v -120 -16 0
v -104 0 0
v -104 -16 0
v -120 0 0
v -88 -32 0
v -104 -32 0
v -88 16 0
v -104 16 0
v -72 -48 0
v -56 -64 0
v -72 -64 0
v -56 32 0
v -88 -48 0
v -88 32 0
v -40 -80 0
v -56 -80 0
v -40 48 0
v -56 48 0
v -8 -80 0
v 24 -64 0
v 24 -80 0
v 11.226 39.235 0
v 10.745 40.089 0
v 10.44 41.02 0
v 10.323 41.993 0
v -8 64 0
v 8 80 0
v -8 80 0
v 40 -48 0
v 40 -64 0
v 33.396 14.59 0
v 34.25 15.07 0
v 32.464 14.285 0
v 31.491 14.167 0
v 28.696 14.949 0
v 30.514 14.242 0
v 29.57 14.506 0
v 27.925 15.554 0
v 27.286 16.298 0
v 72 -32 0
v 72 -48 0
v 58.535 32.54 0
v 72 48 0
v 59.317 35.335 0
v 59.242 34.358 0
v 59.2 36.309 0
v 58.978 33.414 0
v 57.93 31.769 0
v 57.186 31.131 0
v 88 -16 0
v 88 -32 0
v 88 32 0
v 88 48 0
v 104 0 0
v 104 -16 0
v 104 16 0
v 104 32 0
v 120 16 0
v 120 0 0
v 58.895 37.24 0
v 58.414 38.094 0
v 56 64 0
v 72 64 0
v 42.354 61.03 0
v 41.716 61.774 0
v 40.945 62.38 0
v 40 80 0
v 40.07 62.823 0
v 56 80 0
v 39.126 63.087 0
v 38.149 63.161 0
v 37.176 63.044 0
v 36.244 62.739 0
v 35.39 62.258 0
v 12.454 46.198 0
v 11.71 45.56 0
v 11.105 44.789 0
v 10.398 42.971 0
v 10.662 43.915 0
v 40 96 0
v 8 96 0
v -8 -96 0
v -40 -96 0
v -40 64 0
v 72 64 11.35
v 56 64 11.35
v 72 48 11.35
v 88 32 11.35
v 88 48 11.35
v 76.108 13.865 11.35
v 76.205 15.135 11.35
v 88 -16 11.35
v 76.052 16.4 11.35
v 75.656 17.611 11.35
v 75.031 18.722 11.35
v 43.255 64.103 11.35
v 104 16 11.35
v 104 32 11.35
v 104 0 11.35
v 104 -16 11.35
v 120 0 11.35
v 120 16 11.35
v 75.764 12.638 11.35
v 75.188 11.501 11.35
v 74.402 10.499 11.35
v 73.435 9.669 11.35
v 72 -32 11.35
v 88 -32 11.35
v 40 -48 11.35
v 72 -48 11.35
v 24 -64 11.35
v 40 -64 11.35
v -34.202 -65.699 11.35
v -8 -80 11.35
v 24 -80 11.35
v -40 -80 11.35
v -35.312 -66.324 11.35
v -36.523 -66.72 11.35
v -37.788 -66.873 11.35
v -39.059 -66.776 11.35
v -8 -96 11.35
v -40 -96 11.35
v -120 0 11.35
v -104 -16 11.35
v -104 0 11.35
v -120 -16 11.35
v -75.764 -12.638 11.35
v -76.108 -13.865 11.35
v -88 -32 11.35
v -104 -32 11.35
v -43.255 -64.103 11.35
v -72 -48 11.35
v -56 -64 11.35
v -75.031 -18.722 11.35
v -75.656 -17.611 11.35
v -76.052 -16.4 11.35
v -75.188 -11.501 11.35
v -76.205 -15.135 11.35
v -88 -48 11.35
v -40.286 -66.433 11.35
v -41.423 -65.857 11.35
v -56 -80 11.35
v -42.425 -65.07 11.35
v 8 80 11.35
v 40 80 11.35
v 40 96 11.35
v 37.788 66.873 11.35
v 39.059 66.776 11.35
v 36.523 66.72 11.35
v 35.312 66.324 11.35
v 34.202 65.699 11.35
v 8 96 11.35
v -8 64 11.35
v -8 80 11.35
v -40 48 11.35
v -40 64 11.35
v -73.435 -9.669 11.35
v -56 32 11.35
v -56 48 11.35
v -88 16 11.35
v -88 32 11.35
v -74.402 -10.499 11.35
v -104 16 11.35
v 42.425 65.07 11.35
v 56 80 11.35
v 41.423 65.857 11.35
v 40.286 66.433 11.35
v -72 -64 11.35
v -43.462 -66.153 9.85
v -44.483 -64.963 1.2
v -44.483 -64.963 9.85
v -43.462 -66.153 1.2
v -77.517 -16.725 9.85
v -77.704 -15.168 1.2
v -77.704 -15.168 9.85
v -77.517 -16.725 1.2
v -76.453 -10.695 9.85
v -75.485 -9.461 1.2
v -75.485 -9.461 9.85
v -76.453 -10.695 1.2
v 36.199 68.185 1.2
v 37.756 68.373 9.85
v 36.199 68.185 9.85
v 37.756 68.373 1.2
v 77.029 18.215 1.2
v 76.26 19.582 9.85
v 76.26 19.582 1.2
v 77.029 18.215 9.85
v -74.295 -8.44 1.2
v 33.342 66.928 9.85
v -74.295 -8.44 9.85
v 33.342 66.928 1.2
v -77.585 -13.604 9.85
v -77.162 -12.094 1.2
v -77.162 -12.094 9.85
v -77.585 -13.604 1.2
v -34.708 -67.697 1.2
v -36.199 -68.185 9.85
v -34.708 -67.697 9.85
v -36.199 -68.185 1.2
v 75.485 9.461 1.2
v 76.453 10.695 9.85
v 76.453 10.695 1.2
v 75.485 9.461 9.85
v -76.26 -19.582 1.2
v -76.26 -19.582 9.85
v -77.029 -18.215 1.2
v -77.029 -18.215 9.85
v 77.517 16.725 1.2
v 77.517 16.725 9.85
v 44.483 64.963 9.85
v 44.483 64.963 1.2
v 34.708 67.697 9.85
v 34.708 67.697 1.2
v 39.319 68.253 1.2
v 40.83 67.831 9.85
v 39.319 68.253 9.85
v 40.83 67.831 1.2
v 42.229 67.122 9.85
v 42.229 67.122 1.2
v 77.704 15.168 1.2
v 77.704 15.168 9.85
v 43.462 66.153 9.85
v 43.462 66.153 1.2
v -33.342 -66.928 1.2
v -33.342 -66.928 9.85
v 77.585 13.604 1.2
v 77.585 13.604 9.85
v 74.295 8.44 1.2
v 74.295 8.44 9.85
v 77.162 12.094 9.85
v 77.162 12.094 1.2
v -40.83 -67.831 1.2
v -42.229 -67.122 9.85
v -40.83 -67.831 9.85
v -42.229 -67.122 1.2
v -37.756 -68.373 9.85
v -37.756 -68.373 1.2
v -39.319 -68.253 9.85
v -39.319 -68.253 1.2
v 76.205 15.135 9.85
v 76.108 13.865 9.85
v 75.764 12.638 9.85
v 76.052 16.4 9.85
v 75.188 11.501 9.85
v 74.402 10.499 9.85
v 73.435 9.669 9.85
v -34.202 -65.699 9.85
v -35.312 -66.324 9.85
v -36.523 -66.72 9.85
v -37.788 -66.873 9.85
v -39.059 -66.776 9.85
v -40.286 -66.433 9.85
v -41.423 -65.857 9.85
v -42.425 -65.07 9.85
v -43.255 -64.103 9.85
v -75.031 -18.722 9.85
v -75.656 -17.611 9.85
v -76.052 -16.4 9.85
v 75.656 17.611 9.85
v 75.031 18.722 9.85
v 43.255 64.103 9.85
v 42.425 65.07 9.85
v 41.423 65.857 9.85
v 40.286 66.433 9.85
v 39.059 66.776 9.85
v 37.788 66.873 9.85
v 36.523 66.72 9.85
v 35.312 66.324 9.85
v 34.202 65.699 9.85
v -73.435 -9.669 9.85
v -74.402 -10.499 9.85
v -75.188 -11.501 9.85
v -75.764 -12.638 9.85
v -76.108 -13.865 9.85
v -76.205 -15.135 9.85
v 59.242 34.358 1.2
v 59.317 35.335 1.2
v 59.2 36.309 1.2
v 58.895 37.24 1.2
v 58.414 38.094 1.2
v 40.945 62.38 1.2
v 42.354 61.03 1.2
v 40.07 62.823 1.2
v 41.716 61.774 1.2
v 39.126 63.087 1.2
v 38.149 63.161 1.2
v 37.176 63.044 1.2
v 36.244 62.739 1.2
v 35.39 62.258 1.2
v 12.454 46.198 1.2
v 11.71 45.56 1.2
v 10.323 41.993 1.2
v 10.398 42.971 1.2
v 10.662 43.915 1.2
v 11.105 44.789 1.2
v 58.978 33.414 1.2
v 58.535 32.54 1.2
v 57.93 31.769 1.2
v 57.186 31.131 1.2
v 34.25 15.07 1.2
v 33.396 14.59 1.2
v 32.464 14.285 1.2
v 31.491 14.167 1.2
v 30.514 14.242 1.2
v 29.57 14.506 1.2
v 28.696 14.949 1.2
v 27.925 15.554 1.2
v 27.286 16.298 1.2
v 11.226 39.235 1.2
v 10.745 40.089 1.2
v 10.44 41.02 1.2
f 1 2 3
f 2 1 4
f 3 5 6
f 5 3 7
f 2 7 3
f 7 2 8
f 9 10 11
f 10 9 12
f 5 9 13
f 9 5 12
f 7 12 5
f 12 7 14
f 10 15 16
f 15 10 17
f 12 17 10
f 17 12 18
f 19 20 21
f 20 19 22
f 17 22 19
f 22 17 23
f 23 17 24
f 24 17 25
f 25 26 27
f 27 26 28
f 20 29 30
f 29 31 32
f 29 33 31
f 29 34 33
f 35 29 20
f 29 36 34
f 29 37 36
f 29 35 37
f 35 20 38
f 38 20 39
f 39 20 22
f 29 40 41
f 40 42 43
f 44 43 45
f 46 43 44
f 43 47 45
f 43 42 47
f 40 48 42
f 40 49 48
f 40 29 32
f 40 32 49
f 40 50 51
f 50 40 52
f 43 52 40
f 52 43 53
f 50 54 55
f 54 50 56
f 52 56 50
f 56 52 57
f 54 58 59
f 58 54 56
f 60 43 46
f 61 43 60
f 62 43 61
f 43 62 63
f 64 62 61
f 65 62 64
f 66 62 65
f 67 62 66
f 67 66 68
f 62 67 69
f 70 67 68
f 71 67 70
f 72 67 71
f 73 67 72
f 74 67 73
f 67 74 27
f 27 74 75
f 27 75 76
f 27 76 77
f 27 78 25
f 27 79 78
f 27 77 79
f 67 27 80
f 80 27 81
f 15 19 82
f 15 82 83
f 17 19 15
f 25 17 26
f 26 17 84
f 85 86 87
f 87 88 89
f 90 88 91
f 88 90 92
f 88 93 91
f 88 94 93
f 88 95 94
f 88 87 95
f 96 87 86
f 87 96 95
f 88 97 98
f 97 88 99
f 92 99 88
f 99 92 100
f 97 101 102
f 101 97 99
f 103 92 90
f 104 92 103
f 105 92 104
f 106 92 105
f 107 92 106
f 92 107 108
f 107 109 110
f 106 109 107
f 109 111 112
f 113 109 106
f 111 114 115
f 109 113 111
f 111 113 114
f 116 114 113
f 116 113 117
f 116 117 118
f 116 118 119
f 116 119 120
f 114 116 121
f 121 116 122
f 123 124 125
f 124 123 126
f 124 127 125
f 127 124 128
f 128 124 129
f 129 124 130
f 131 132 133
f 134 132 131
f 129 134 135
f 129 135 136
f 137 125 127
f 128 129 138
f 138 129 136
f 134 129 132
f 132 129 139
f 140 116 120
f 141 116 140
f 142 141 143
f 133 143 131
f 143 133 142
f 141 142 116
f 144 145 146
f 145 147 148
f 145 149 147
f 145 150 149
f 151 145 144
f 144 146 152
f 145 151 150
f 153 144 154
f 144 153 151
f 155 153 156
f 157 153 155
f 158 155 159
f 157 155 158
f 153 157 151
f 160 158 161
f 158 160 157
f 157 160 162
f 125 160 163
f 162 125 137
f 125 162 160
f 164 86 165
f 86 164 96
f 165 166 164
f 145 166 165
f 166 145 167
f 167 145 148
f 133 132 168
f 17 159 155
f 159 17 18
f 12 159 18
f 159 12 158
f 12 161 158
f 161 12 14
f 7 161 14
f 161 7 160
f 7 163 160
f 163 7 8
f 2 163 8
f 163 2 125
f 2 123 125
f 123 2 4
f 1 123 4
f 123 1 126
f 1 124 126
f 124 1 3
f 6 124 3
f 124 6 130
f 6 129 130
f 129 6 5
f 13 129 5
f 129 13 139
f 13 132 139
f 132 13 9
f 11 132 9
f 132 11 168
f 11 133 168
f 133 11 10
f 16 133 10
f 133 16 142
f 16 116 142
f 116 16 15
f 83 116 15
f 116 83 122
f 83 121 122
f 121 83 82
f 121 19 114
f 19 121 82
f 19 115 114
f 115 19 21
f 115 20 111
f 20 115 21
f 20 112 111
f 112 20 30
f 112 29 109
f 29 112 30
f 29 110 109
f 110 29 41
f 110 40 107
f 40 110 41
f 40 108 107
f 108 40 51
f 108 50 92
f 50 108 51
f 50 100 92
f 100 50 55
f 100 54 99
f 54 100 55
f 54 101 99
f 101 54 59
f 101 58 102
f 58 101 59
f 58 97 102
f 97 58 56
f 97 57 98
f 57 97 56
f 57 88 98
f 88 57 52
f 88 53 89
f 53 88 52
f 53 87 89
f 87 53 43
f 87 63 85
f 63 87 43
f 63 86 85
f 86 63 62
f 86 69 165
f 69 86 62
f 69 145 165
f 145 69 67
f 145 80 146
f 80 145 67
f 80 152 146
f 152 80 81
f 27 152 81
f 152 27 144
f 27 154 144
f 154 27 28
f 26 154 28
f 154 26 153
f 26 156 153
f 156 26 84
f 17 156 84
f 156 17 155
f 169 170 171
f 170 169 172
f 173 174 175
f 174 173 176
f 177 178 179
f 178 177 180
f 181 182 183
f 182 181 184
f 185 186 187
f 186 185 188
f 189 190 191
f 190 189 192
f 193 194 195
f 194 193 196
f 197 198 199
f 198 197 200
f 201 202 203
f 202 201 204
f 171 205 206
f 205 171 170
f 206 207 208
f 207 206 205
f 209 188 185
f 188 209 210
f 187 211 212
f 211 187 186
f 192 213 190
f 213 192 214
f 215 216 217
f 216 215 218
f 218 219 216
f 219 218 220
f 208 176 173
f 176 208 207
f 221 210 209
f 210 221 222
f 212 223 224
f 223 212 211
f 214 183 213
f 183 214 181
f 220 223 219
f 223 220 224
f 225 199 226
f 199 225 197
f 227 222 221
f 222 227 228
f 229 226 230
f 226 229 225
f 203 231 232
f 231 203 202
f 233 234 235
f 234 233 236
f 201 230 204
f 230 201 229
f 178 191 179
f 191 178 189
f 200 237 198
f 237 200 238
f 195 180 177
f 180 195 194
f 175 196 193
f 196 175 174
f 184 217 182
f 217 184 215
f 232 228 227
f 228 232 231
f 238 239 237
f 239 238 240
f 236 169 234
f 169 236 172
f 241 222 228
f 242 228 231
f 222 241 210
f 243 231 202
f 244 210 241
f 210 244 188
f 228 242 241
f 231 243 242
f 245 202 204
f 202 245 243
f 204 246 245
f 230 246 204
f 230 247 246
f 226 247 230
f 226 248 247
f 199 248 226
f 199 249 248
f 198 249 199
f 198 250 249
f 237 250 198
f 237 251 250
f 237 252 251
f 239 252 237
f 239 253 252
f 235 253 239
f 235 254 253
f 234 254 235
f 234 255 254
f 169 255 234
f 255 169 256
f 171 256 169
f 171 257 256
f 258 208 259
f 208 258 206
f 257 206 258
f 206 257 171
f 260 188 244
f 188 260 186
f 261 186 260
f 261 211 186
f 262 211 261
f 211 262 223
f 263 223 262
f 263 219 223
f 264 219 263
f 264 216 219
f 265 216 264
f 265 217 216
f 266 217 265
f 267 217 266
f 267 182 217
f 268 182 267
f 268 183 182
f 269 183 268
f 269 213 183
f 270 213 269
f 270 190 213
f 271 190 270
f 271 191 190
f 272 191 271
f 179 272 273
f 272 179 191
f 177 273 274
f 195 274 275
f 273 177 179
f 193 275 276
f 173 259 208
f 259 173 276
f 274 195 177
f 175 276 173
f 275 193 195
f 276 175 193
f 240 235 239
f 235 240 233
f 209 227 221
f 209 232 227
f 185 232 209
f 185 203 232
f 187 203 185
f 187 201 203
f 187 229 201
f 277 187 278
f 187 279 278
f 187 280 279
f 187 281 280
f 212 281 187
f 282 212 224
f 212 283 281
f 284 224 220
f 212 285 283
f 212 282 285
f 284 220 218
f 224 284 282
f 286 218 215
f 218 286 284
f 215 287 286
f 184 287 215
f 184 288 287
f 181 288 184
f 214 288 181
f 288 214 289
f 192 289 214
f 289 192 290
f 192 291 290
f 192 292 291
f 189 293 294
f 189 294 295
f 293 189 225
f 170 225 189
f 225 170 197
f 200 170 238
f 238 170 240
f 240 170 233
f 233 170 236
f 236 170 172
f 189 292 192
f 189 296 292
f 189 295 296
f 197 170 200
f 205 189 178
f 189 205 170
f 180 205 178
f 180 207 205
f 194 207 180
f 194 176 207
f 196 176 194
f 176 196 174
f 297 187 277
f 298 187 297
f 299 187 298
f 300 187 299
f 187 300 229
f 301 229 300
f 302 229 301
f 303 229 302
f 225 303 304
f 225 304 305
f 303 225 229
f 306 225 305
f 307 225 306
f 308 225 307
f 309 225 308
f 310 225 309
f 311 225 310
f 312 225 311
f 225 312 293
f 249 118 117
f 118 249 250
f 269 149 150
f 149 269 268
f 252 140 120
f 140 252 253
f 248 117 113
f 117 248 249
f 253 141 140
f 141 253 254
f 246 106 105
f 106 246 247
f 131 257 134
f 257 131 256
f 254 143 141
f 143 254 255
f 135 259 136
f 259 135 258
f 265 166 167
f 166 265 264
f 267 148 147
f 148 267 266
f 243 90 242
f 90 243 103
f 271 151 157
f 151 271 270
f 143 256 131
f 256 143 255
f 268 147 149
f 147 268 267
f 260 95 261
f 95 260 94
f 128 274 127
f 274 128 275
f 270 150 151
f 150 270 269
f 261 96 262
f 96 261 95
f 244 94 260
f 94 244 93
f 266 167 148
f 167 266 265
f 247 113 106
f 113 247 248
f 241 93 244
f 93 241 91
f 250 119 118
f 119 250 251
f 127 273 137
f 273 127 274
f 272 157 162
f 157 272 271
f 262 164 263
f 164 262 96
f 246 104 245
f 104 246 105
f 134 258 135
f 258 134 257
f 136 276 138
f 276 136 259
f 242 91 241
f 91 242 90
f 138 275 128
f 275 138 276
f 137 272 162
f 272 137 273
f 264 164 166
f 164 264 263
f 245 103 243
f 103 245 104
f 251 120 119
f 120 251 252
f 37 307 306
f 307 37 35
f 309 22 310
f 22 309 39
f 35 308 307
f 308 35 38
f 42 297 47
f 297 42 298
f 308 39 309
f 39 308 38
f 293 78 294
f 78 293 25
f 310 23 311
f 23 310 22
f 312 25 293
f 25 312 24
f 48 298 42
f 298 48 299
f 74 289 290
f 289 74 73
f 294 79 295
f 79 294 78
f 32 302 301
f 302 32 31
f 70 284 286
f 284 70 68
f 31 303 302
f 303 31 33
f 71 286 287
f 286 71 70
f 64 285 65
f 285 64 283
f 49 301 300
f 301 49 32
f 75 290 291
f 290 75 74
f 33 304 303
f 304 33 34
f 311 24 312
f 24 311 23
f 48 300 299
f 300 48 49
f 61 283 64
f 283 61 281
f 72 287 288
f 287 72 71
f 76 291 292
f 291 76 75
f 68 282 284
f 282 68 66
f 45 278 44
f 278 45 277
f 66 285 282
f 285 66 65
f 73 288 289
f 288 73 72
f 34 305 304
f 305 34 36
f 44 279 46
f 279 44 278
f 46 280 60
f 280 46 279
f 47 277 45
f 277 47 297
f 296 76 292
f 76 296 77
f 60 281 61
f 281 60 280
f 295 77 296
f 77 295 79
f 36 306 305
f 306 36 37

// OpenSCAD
// ============================================================
// Minecraft Map iPhone 15 Pro Case — TPU
// ============================================================
// Outer shape: the Minecraft filled_map.png texture extruded.
// Phone pocket: rotated to align with the map's tilt.
//
// TWEAK THIS: adjust phone_angle until the pocket fits nicely
// inside the map shape without poking through any edges.
// ============================================================

// === TWEAK THESE ===
phone_angle = 55;   // rotation of phone pocket (degrees, CW)
pixel = 16;         // mm per texture pixel (controls overall size)
// ===================

// --- Phone dimensions (iPhone 15 Pro) ---
phone_h = 146.6;
phone_w = 70.6;
phone_d = 8.25;

// --- Case parameters ---
clearance = 0.4;
bottom = 1.2;
lip = 1.5;          // front lip — wraps over screen edge to hold phone securely
case_d = phone_d + clearance + bottom + lip;  // total thickness includes lip

// Phone pocket dimensions
pocket_h = phone_h + clearance * 2;
pocket_w = phone_w + clearance * 2;
pocket_d = phone_d + clearance;
corner_r = 8.0;

// --- Map center in pixel coords ---
map_cx = 8;
map_cy = 7.5;

// --- 2D rounded rectangle ---
module rounded_rect_2d(w, h, r) {
    offset(r=r) offset(delta=-r)
        square([w, h], center=true);
}

// --- Map shape from filled_map.png alpha channel ---
module map_shape_2d() {
    pixels = [
        [9,2],[10,2],
        [8,3],[9,3],[10,3],[11,3],
        [6,4],[7,4],[8,4],[9,4],[10,4],[11,4],[12,4],
        [5,5],[6,5],[7,5],[8,5],[9,5],[10,5],[11,5],[12,5],[13,5],
        [3,6],[4,6],[5,6],[6,6],[7,6],[8,6],[9,6],[10,6],[11,6],[12,6],[13,6],[14,6],
        [2,7],[3,7],[4,7],[5,7],[6,7],[7,7],[8,7],[9,7],[10,7],[11,7],[12,7],[13,7],[14,7],[15,7],
        [1,8],[2,8],[3,8],[4,8],[5,8],[6,8],[7,8],[8,8],[9,8],[10,8],[11,8],[12,8],[13,8],[14,8],
        [2,9],[3,9],[4,9],[5,9],[6,9],[7,9],[8,9],[9,9],[10,9],[11,9],[12,9],[13,9],
        [3,10],[4,10],[5,10],[6,10],[7,10],[8,10],[9,10],[10,10],[11,10],[12,10],
        [4,11],[5,11],[6,11],[7,11],[8,11],[9,11],[10,11],
        [5,12],[6,12],[7,12],[8,12],[9,12],
        [6,13],[7,13]
    ];
    
    for (p = pixels) {
        translate([(p[0] - map_cx) * pixel, -(p[1] - map_cy) * pixel])
            square(pixel, center=true);
    }
}

// --- Main case ---
module case_body() {
    difference() {
        // Solid map shape
        linear_extrude(height=case_d)
            map_shape_2d();
        
        // Phone pocket — rotated to match map tilt
        // Only goes up to the lip height (leaves material on front face)
        translate([0, 0, bottom])
            linear_extrude(height=pocket_d)
                rotate([0, 0, -phone_angle])
                    rounded_rect_2d(pocket_w, pocket_h, corner_r);
        
        // Screen opening (front face) — smaller than pocket, creates the retaining lip
        translate([0, 0, bottom + pocket_d - 0.1])
            linear_extrude(height=lip + 1)
                rotate([0, 0, -phone_angle])
                    rounded_rect_2d(pocket_w - lip*2, pocket_h - lip*2, corner_r - lip);
        
        // Camera module cutout (back face, top-left of phone when face-down)
        // iPhone 15 Pro: ~38x36mm rounded square, offset from top-left corner
        rotate([0, 0, -phone_angle])
            translate([-pocket_w/2 + 5, pocket_h/2 - 42, -1])
                linear_extrude(height=bottom + 2)
                    offset(r=5) offset(delta=-5)
                        square([38, 38]);
    }
}

// --- Render ---
$fn = 32;
case_body();
